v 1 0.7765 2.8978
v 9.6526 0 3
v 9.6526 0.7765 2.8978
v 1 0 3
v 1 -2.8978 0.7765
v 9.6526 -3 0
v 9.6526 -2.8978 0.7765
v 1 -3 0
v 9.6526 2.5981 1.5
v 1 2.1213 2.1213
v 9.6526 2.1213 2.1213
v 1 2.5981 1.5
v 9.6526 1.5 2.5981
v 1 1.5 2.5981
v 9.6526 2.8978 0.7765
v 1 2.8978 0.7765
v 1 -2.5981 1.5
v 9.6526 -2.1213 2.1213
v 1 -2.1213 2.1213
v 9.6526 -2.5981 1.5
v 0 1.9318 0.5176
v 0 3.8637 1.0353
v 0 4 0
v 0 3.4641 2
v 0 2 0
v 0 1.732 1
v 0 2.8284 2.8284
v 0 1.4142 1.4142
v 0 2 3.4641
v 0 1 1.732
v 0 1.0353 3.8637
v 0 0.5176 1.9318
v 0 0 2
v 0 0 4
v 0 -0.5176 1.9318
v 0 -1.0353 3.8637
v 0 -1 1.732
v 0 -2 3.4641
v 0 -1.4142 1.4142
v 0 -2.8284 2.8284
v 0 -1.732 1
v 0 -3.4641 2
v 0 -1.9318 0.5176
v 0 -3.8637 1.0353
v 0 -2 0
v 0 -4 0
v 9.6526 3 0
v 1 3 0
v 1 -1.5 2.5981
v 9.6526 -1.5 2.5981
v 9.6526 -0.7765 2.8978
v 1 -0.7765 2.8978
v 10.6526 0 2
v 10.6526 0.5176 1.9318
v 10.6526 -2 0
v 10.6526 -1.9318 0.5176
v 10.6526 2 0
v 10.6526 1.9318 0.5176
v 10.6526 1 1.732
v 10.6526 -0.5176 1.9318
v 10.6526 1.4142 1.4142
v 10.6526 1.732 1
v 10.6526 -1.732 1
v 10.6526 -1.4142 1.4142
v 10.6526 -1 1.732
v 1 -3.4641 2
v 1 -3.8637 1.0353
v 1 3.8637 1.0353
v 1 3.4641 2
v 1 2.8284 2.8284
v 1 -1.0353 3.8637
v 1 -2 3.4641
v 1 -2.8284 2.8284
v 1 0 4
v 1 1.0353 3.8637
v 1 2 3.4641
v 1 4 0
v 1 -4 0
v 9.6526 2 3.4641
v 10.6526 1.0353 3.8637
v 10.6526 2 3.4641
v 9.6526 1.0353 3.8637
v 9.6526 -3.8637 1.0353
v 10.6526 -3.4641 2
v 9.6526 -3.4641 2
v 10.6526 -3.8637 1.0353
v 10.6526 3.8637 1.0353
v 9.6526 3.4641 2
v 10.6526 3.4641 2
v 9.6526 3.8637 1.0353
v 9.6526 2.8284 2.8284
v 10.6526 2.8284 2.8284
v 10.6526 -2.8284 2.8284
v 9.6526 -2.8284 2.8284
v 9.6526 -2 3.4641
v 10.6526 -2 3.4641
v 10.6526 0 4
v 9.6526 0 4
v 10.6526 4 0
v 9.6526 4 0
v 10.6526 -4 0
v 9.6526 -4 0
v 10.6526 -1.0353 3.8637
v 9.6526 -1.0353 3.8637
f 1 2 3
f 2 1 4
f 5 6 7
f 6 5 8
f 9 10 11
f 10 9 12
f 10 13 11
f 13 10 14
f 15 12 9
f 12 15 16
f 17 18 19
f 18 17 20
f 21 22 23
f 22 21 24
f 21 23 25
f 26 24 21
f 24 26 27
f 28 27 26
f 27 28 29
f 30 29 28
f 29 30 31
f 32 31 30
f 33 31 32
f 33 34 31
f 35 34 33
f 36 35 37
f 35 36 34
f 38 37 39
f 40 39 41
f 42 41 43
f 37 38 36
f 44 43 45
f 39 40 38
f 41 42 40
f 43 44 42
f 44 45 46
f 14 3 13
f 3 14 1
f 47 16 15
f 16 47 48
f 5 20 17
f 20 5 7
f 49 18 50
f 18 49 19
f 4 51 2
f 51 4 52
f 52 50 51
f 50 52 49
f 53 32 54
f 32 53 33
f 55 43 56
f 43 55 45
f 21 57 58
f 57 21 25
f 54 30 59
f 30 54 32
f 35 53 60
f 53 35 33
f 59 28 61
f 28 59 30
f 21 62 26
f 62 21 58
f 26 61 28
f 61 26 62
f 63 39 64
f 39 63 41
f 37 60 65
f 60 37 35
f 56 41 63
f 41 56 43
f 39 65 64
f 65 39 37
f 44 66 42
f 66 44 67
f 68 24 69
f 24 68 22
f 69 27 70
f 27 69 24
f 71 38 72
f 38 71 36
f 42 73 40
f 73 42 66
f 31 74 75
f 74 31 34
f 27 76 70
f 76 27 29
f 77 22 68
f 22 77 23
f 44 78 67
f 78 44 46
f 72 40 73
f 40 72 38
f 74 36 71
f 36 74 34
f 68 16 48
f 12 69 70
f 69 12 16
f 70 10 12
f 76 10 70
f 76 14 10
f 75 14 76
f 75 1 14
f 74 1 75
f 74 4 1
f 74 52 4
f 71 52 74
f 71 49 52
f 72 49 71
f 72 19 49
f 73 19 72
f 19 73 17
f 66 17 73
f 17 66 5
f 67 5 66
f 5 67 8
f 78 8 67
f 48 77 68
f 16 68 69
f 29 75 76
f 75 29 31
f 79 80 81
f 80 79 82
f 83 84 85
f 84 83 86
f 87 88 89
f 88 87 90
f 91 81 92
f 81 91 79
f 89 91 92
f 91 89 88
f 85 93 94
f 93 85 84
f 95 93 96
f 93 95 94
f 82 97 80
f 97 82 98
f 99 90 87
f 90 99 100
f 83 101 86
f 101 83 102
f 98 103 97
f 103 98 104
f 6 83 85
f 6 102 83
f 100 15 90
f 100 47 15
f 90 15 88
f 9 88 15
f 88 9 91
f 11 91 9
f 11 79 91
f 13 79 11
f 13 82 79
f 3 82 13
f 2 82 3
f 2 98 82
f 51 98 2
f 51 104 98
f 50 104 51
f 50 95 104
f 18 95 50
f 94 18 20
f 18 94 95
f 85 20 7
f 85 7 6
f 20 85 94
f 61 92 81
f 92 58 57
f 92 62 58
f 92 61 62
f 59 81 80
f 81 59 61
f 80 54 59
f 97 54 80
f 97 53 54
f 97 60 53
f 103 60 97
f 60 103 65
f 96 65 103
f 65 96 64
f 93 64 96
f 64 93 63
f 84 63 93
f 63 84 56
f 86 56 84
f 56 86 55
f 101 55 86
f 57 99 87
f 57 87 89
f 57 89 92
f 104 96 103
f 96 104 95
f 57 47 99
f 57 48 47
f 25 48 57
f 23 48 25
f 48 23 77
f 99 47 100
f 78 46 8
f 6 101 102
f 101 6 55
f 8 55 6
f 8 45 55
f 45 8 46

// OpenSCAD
// file: ../build_environments.scad
// build_environments.scad: modules to build level sections
//

module pool(diameter=10.0, wall_height=2.0, step_width=3.0, connections=[])
{
    difference() {
        union() {
        difference() {
            cylinder(h=0.5,r1=diameter+step_width,r2=diameter+step_width,$fn=48);
            translate([0,0,-0.1])
                cylinder(h=0.7,r1=diameter,r2=diameter,$fn=48);
        }
        difference() {
            cylinder(h=wall_height,r1=diameter+step_width+1.0,r2=diameter+step_width+1.0,$fn=48);
            translate([0,0,-0.1])
                cylinder(h=wall_height+0.2,r1=diameter+step_width,r2=diameter+step_width,$fn=48);
        }
        }
    
        for (c = connections)
        {
            rotate([0,90,0]) {
                angle = atan2(c[1],c[0]);
                rotate([-angle,0,0]) {
                    cylinder(h=diameter+5.0,r1=c[2],r2=c[2],$fn=48);
                }
            }
        }
    }
}

module straight(length=10.0, width=2.0, dy1=0.0, dy2=0.0, dz=0.0)
{
    dims = [0, 0, 0, 0, 0, (dz/length)];
    matrix = [
        [ 1, dims[0], dims[1], 0 ],
        [ dims[2], 1, dims[4], 0 ],
        [ dims[5], dims[3], 1, 0 ],
        [ 0, 0, 0, 1 ]
    ];
    multmatrix(matrix)
    difference() {
        translate([dy1,0,0])
        union() {
            rotate([0,90,0]) {
                difference() {
                    cylinder(h=(length-dy1-dy2),r1=width+1.0,r2=width+1.0,$fn=24);
                    translate([0,0,-0.1])
                        cylinder(h=(length-dy1-dy2+0.2),r1=width,r2=width,$fn=24);
                }
                difference() {
                    cylinder(h=1.0,r1=width+2.0,r2=width+2.0,$fn=24);
                    translate([0,0,-0.1])
                        cylinder(h=1.2,r1=width,r2=width,$fn=24);
                }
                translate([0,0,(length-dy1-dy2)-1.0]) {
                    difference() {
                        cylinder(h=1.0,r1=width+2.0,r2=width+2.0,$fn=24);
                        translate([0,0,-0.1])
                            cylinder(h=1.2,r1=width,r2=width,$fn=24);
                    }
                }
            }
        }
        translate([0,0,-(2*width+4.0)/2])
            cube([3*length,3*length,2*width+4.0],center=true);
    }
}

module curve(p0=[0,0], center=[0,0], dir=1, angle=0.0, width=2.0)
{
    radius = sqrt((p0[0]-center[0])*(p0[0]-center[0]) + (p0[1]-center[1])*(p0[1]-center[1]));
    if (dir == 0) {
        difference() {
            rotate([0,0,-90])
            difference() {
                rotate_extrude(angle = angle, convexity = 10, $fn=32)
                    translate([radius, 0, 0])
                        circle(r = width+1.0,$fn=24);
                rotate([0,0,-1.0])
                    rotate_extrude(angle = angle+2.0, convexity = 10, $fn=32)
                        translate([radius, 0, 0])
                            circle(r = width,$fn=24);
            }
            translate([0,0,-(2*width+4.0)/2])
                cube([5*radius,5*radius,2*width+4.0],center=true);
        }
    }
    else {
        difference() {
            rotate([0,0,90])
            difference() {
                rotate_extrude(angle = -angle, convexity = 10, $fn=32)
                    translate([radius, 0, 0])
                        circle(r = width+1.0,$fn=24);
                rotate([0,0,1.0])
                    rotate_extrude(angle = -angle-2.0, convexity = 10, $fn=32)
                        translate([radius, 0, 0])
                            circle(r = width,$fn=24);
            }
            translate([0,0,-(2*width+4.0)/2])
                cube([5*radius,5*radius,2*width+4.0],center=true);
        }
    }

}

// test pool
//pool(diameter=12.0000, wall_height=3.0000, step_width=3.0000, connections=[[0.0000,-26.0000,2.0000], [23.6074,0.0000,2.0000]]);

// test straight, slope
//straight(length=26.0000, width=2.0000, dy1=11.8322, dy2=6.7082, dz=0.0000);
//straight(length=29.1549, width=12.0000, dy1=0.0000, dy2=0.0000, dz=-15.0000);

// test curve
//curve(p0=[23.6074, 0.0000], center=[23.6074, 5.0000], dir=0, angle=60.1011, width=2.0000);
//curve(p0=[33.6426, 12.4219], center=[37.9771, 9.9295], dir=1, angle=120.4627, width=2.0000);
// main file
use <../build_environments.scad>;
straight(length=22.4848, width=2.0000, dy1=0.0000, dy2=11.8322, dz=0.0000);
